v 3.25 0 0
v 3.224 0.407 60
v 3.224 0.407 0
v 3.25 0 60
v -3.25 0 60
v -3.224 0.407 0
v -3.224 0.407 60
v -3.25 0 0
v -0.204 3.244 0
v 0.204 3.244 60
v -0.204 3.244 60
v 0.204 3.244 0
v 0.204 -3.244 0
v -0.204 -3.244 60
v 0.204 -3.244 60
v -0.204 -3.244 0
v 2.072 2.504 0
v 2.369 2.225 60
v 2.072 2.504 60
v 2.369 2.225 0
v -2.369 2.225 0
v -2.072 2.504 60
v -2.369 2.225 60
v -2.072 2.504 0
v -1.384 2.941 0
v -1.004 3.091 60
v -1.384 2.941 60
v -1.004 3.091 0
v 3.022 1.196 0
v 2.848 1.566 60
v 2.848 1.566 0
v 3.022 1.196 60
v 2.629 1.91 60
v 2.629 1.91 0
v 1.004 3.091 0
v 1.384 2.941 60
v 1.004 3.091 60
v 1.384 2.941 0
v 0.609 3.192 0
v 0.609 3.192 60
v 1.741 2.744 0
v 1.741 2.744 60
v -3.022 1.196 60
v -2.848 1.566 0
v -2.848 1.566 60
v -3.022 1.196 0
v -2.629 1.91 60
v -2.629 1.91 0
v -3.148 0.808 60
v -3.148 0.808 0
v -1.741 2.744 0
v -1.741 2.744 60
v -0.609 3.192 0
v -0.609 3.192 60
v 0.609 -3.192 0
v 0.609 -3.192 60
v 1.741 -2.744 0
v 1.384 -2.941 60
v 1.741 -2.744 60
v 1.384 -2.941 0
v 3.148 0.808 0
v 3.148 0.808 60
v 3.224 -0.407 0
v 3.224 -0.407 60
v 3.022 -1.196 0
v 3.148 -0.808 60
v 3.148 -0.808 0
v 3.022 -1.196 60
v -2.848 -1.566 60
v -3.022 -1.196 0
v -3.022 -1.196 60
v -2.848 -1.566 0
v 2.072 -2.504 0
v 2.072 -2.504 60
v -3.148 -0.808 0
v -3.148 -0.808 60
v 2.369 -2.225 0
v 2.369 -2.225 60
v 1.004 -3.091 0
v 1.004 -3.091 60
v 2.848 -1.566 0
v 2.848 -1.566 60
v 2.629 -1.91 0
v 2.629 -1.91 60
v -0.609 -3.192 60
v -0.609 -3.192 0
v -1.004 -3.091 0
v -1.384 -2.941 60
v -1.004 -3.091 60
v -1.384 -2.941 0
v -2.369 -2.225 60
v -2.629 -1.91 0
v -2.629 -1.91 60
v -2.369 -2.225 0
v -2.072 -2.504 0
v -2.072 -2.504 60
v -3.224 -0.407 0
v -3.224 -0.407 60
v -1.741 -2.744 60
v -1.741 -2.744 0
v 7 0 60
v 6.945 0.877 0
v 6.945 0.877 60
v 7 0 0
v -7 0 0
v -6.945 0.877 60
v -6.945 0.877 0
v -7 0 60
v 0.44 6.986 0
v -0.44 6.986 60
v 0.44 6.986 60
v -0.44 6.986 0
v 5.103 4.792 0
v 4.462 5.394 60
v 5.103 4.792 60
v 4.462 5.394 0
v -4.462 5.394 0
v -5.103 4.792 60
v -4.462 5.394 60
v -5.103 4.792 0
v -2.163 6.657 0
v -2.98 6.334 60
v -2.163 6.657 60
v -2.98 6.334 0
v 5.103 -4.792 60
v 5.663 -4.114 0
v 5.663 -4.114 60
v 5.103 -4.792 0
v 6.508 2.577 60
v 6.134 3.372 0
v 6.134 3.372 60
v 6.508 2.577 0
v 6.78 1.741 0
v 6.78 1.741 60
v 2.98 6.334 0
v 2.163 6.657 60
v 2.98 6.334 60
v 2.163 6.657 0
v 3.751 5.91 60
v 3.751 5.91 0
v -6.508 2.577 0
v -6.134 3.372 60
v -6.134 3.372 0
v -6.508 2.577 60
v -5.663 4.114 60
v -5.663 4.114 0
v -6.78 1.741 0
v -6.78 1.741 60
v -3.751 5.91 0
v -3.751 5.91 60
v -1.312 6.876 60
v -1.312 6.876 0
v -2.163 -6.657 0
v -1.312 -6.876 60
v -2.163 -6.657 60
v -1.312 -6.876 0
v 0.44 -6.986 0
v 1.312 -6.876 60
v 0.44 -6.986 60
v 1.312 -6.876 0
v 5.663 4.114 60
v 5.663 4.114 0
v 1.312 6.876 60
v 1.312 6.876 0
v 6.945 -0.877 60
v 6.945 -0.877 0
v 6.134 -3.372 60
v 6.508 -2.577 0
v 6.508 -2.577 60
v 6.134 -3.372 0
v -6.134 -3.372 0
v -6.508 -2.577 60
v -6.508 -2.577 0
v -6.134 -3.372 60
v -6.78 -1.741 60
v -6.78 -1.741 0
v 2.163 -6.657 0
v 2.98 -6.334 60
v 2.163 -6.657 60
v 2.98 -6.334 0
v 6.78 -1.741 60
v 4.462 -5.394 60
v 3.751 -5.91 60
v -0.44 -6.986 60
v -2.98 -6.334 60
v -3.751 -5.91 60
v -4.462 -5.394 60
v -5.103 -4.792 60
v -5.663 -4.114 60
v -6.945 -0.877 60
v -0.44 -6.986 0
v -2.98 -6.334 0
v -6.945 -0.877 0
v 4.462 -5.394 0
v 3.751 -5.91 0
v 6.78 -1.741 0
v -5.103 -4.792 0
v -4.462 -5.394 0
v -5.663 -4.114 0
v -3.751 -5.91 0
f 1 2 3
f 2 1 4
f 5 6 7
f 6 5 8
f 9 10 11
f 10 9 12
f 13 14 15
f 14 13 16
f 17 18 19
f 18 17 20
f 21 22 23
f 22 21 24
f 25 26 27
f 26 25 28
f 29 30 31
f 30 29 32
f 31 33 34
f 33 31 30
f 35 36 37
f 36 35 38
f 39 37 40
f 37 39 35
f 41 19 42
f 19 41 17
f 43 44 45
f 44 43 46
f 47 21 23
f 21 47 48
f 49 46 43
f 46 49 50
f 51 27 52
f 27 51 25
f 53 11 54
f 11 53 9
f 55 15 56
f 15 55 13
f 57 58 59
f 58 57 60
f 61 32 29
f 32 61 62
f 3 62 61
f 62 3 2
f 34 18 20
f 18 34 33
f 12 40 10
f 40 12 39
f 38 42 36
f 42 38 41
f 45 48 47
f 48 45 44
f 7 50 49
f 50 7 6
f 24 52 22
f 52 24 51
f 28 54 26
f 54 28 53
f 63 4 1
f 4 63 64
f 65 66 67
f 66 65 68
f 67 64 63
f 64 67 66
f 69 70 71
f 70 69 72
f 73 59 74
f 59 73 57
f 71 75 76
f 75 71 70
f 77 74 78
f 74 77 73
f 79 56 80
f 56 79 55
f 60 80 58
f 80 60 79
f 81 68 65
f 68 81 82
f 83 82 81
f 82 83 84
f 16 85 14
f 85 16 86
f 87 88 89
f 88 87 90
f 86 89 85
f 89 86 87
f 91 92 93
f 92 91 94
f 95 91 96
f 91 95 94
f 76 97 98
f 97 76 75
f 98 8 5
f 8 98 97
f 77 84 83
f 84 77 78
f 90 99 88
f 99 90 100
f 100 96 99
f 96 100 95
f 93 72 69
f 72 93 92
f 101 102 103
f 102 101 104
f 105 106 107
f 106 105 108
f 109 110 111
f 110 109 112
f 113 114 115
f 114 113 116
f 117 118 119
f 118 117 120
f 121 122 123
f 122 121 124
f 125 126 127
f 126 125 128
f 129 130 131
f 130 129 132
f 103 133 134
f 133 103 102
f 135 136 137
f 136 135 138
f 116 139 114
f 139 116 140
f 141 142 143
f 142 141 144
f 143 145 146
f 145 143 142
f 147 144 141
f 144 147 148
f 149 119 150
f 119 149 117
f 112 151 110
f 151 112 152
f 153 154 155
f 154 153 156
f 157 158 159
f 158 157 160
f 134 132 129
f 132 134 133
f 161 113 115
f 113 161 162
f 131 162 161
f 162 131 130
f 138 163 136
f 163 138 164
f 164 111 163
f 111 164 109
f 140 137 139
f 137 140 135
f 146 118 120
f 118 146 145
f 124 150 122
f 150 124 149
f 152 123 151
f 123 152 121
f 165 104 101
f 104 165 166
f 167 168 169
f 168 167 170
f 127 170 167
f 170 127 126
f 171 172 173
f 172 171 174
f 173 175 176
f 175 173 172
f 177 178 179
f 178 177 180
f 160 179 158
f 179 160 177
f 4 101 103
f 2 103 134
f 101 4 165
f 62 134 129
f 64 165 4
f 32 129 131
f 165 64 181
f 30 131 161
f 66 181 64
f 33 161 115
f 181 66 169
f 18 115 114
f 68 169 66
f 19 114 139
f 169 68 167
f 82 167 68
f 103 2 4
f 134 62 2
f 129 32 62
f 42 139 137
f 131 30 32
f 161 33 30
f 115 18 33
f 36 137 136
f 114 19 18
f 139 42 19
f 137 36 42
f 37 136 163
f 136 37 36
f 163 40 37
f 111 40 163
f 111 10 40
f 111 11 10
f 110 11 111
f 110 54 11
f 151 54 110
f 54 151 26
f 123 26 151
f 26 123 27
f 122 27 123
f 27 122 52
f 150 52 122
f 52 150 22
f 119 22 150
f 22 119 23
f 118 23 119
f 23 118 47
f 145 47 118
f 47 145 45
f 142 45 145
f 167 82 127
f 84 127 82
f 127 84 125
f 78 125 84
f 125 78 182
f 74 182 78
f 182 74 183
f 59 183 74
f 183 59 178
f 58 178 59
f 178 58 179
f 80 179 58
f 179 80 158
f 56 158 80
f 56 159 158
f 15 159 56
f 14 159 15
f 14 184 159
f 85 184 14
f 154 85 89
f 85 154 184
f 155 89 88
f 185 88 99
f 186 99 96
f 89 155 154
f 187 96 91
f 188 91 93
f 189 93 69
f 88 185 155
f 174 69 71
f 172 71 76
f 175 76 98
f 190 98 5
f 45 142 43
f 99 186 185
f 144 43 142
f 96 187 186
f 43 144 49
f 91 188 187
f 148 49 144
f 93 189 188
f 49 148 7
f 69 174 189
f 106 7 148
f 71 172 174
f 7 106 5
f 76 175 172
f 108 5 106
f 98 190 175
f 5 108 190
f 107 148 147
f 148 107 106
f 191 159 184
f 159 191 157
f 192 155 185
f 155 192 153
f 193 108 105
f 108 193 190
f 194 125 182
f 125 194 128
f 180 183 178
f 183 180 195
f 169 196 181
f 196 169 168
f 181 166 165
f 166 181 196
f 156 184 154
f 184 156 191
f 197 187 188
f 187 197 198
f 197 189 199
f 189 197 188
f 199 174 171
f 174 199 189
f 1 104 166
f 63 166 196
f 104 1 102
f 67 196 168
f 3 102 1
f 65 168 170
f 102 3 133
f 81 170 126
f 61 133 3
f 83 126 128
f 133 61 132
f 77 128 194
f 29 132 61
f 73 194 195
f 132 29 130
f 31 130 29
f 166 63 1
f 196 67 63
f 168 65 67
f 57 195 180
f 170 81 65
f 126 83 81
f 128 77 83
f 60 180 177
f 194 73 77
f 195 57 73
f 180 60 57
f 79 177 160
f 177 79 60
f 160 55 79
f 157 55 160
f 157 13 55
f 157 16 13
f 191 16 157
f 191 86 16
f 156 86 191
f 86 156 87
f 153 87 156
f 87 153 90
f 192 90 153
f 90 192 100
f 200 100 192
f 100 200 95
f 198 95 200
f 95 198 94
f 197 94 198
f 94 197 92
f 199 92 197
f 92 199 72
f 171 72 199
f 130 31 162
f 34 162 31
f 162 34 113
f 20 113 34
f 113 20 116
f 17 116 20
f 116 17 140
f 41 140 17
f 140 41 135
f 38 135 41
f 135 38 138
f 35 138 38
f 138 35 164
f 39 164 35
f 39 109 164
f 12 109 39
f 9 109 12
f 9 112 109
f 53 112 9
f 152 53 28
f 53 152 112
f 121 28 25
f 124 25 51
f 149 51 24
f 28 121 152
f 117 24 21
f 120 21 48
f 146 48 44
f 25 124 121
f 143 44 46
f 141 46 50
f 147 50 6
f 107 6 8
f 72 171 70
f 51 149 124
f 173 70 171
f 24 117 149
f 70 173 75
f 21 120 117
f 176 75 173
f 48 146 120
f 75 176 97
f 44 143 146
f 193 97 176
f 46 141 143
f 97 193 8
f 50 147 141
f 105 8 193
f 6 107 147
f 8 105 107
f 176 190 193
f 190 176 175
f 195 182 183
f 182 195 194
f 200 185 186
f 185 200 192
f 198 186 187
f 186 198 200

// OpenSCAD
$fn = 50;


difference() {
	union() {
		cylinder(h = 60, r = 7.0000000000);
	}
	union() {
		translate(v = [0.0000000000, 0.0000000000, -100.0000000000]) {
			cylinder(h = 200, r = 3.2500000000);
		}
		translate(v = [0.0000000000, 0.0000000000, -100.0000000000]) {
			cylinder(h = 200, r = 3.2500000000);
		}
		translate(v = [0.0000000000, 0.0000000000, -100.0000000000]) {
			cylinder(h = 200, r = 3.2500000000);
		}
		translate(v = [0.0000000000, 0.0000000000, -100.0000000000]) {
			cylinder(h = 200, r = 3.2500000000);
		}
	}
}
